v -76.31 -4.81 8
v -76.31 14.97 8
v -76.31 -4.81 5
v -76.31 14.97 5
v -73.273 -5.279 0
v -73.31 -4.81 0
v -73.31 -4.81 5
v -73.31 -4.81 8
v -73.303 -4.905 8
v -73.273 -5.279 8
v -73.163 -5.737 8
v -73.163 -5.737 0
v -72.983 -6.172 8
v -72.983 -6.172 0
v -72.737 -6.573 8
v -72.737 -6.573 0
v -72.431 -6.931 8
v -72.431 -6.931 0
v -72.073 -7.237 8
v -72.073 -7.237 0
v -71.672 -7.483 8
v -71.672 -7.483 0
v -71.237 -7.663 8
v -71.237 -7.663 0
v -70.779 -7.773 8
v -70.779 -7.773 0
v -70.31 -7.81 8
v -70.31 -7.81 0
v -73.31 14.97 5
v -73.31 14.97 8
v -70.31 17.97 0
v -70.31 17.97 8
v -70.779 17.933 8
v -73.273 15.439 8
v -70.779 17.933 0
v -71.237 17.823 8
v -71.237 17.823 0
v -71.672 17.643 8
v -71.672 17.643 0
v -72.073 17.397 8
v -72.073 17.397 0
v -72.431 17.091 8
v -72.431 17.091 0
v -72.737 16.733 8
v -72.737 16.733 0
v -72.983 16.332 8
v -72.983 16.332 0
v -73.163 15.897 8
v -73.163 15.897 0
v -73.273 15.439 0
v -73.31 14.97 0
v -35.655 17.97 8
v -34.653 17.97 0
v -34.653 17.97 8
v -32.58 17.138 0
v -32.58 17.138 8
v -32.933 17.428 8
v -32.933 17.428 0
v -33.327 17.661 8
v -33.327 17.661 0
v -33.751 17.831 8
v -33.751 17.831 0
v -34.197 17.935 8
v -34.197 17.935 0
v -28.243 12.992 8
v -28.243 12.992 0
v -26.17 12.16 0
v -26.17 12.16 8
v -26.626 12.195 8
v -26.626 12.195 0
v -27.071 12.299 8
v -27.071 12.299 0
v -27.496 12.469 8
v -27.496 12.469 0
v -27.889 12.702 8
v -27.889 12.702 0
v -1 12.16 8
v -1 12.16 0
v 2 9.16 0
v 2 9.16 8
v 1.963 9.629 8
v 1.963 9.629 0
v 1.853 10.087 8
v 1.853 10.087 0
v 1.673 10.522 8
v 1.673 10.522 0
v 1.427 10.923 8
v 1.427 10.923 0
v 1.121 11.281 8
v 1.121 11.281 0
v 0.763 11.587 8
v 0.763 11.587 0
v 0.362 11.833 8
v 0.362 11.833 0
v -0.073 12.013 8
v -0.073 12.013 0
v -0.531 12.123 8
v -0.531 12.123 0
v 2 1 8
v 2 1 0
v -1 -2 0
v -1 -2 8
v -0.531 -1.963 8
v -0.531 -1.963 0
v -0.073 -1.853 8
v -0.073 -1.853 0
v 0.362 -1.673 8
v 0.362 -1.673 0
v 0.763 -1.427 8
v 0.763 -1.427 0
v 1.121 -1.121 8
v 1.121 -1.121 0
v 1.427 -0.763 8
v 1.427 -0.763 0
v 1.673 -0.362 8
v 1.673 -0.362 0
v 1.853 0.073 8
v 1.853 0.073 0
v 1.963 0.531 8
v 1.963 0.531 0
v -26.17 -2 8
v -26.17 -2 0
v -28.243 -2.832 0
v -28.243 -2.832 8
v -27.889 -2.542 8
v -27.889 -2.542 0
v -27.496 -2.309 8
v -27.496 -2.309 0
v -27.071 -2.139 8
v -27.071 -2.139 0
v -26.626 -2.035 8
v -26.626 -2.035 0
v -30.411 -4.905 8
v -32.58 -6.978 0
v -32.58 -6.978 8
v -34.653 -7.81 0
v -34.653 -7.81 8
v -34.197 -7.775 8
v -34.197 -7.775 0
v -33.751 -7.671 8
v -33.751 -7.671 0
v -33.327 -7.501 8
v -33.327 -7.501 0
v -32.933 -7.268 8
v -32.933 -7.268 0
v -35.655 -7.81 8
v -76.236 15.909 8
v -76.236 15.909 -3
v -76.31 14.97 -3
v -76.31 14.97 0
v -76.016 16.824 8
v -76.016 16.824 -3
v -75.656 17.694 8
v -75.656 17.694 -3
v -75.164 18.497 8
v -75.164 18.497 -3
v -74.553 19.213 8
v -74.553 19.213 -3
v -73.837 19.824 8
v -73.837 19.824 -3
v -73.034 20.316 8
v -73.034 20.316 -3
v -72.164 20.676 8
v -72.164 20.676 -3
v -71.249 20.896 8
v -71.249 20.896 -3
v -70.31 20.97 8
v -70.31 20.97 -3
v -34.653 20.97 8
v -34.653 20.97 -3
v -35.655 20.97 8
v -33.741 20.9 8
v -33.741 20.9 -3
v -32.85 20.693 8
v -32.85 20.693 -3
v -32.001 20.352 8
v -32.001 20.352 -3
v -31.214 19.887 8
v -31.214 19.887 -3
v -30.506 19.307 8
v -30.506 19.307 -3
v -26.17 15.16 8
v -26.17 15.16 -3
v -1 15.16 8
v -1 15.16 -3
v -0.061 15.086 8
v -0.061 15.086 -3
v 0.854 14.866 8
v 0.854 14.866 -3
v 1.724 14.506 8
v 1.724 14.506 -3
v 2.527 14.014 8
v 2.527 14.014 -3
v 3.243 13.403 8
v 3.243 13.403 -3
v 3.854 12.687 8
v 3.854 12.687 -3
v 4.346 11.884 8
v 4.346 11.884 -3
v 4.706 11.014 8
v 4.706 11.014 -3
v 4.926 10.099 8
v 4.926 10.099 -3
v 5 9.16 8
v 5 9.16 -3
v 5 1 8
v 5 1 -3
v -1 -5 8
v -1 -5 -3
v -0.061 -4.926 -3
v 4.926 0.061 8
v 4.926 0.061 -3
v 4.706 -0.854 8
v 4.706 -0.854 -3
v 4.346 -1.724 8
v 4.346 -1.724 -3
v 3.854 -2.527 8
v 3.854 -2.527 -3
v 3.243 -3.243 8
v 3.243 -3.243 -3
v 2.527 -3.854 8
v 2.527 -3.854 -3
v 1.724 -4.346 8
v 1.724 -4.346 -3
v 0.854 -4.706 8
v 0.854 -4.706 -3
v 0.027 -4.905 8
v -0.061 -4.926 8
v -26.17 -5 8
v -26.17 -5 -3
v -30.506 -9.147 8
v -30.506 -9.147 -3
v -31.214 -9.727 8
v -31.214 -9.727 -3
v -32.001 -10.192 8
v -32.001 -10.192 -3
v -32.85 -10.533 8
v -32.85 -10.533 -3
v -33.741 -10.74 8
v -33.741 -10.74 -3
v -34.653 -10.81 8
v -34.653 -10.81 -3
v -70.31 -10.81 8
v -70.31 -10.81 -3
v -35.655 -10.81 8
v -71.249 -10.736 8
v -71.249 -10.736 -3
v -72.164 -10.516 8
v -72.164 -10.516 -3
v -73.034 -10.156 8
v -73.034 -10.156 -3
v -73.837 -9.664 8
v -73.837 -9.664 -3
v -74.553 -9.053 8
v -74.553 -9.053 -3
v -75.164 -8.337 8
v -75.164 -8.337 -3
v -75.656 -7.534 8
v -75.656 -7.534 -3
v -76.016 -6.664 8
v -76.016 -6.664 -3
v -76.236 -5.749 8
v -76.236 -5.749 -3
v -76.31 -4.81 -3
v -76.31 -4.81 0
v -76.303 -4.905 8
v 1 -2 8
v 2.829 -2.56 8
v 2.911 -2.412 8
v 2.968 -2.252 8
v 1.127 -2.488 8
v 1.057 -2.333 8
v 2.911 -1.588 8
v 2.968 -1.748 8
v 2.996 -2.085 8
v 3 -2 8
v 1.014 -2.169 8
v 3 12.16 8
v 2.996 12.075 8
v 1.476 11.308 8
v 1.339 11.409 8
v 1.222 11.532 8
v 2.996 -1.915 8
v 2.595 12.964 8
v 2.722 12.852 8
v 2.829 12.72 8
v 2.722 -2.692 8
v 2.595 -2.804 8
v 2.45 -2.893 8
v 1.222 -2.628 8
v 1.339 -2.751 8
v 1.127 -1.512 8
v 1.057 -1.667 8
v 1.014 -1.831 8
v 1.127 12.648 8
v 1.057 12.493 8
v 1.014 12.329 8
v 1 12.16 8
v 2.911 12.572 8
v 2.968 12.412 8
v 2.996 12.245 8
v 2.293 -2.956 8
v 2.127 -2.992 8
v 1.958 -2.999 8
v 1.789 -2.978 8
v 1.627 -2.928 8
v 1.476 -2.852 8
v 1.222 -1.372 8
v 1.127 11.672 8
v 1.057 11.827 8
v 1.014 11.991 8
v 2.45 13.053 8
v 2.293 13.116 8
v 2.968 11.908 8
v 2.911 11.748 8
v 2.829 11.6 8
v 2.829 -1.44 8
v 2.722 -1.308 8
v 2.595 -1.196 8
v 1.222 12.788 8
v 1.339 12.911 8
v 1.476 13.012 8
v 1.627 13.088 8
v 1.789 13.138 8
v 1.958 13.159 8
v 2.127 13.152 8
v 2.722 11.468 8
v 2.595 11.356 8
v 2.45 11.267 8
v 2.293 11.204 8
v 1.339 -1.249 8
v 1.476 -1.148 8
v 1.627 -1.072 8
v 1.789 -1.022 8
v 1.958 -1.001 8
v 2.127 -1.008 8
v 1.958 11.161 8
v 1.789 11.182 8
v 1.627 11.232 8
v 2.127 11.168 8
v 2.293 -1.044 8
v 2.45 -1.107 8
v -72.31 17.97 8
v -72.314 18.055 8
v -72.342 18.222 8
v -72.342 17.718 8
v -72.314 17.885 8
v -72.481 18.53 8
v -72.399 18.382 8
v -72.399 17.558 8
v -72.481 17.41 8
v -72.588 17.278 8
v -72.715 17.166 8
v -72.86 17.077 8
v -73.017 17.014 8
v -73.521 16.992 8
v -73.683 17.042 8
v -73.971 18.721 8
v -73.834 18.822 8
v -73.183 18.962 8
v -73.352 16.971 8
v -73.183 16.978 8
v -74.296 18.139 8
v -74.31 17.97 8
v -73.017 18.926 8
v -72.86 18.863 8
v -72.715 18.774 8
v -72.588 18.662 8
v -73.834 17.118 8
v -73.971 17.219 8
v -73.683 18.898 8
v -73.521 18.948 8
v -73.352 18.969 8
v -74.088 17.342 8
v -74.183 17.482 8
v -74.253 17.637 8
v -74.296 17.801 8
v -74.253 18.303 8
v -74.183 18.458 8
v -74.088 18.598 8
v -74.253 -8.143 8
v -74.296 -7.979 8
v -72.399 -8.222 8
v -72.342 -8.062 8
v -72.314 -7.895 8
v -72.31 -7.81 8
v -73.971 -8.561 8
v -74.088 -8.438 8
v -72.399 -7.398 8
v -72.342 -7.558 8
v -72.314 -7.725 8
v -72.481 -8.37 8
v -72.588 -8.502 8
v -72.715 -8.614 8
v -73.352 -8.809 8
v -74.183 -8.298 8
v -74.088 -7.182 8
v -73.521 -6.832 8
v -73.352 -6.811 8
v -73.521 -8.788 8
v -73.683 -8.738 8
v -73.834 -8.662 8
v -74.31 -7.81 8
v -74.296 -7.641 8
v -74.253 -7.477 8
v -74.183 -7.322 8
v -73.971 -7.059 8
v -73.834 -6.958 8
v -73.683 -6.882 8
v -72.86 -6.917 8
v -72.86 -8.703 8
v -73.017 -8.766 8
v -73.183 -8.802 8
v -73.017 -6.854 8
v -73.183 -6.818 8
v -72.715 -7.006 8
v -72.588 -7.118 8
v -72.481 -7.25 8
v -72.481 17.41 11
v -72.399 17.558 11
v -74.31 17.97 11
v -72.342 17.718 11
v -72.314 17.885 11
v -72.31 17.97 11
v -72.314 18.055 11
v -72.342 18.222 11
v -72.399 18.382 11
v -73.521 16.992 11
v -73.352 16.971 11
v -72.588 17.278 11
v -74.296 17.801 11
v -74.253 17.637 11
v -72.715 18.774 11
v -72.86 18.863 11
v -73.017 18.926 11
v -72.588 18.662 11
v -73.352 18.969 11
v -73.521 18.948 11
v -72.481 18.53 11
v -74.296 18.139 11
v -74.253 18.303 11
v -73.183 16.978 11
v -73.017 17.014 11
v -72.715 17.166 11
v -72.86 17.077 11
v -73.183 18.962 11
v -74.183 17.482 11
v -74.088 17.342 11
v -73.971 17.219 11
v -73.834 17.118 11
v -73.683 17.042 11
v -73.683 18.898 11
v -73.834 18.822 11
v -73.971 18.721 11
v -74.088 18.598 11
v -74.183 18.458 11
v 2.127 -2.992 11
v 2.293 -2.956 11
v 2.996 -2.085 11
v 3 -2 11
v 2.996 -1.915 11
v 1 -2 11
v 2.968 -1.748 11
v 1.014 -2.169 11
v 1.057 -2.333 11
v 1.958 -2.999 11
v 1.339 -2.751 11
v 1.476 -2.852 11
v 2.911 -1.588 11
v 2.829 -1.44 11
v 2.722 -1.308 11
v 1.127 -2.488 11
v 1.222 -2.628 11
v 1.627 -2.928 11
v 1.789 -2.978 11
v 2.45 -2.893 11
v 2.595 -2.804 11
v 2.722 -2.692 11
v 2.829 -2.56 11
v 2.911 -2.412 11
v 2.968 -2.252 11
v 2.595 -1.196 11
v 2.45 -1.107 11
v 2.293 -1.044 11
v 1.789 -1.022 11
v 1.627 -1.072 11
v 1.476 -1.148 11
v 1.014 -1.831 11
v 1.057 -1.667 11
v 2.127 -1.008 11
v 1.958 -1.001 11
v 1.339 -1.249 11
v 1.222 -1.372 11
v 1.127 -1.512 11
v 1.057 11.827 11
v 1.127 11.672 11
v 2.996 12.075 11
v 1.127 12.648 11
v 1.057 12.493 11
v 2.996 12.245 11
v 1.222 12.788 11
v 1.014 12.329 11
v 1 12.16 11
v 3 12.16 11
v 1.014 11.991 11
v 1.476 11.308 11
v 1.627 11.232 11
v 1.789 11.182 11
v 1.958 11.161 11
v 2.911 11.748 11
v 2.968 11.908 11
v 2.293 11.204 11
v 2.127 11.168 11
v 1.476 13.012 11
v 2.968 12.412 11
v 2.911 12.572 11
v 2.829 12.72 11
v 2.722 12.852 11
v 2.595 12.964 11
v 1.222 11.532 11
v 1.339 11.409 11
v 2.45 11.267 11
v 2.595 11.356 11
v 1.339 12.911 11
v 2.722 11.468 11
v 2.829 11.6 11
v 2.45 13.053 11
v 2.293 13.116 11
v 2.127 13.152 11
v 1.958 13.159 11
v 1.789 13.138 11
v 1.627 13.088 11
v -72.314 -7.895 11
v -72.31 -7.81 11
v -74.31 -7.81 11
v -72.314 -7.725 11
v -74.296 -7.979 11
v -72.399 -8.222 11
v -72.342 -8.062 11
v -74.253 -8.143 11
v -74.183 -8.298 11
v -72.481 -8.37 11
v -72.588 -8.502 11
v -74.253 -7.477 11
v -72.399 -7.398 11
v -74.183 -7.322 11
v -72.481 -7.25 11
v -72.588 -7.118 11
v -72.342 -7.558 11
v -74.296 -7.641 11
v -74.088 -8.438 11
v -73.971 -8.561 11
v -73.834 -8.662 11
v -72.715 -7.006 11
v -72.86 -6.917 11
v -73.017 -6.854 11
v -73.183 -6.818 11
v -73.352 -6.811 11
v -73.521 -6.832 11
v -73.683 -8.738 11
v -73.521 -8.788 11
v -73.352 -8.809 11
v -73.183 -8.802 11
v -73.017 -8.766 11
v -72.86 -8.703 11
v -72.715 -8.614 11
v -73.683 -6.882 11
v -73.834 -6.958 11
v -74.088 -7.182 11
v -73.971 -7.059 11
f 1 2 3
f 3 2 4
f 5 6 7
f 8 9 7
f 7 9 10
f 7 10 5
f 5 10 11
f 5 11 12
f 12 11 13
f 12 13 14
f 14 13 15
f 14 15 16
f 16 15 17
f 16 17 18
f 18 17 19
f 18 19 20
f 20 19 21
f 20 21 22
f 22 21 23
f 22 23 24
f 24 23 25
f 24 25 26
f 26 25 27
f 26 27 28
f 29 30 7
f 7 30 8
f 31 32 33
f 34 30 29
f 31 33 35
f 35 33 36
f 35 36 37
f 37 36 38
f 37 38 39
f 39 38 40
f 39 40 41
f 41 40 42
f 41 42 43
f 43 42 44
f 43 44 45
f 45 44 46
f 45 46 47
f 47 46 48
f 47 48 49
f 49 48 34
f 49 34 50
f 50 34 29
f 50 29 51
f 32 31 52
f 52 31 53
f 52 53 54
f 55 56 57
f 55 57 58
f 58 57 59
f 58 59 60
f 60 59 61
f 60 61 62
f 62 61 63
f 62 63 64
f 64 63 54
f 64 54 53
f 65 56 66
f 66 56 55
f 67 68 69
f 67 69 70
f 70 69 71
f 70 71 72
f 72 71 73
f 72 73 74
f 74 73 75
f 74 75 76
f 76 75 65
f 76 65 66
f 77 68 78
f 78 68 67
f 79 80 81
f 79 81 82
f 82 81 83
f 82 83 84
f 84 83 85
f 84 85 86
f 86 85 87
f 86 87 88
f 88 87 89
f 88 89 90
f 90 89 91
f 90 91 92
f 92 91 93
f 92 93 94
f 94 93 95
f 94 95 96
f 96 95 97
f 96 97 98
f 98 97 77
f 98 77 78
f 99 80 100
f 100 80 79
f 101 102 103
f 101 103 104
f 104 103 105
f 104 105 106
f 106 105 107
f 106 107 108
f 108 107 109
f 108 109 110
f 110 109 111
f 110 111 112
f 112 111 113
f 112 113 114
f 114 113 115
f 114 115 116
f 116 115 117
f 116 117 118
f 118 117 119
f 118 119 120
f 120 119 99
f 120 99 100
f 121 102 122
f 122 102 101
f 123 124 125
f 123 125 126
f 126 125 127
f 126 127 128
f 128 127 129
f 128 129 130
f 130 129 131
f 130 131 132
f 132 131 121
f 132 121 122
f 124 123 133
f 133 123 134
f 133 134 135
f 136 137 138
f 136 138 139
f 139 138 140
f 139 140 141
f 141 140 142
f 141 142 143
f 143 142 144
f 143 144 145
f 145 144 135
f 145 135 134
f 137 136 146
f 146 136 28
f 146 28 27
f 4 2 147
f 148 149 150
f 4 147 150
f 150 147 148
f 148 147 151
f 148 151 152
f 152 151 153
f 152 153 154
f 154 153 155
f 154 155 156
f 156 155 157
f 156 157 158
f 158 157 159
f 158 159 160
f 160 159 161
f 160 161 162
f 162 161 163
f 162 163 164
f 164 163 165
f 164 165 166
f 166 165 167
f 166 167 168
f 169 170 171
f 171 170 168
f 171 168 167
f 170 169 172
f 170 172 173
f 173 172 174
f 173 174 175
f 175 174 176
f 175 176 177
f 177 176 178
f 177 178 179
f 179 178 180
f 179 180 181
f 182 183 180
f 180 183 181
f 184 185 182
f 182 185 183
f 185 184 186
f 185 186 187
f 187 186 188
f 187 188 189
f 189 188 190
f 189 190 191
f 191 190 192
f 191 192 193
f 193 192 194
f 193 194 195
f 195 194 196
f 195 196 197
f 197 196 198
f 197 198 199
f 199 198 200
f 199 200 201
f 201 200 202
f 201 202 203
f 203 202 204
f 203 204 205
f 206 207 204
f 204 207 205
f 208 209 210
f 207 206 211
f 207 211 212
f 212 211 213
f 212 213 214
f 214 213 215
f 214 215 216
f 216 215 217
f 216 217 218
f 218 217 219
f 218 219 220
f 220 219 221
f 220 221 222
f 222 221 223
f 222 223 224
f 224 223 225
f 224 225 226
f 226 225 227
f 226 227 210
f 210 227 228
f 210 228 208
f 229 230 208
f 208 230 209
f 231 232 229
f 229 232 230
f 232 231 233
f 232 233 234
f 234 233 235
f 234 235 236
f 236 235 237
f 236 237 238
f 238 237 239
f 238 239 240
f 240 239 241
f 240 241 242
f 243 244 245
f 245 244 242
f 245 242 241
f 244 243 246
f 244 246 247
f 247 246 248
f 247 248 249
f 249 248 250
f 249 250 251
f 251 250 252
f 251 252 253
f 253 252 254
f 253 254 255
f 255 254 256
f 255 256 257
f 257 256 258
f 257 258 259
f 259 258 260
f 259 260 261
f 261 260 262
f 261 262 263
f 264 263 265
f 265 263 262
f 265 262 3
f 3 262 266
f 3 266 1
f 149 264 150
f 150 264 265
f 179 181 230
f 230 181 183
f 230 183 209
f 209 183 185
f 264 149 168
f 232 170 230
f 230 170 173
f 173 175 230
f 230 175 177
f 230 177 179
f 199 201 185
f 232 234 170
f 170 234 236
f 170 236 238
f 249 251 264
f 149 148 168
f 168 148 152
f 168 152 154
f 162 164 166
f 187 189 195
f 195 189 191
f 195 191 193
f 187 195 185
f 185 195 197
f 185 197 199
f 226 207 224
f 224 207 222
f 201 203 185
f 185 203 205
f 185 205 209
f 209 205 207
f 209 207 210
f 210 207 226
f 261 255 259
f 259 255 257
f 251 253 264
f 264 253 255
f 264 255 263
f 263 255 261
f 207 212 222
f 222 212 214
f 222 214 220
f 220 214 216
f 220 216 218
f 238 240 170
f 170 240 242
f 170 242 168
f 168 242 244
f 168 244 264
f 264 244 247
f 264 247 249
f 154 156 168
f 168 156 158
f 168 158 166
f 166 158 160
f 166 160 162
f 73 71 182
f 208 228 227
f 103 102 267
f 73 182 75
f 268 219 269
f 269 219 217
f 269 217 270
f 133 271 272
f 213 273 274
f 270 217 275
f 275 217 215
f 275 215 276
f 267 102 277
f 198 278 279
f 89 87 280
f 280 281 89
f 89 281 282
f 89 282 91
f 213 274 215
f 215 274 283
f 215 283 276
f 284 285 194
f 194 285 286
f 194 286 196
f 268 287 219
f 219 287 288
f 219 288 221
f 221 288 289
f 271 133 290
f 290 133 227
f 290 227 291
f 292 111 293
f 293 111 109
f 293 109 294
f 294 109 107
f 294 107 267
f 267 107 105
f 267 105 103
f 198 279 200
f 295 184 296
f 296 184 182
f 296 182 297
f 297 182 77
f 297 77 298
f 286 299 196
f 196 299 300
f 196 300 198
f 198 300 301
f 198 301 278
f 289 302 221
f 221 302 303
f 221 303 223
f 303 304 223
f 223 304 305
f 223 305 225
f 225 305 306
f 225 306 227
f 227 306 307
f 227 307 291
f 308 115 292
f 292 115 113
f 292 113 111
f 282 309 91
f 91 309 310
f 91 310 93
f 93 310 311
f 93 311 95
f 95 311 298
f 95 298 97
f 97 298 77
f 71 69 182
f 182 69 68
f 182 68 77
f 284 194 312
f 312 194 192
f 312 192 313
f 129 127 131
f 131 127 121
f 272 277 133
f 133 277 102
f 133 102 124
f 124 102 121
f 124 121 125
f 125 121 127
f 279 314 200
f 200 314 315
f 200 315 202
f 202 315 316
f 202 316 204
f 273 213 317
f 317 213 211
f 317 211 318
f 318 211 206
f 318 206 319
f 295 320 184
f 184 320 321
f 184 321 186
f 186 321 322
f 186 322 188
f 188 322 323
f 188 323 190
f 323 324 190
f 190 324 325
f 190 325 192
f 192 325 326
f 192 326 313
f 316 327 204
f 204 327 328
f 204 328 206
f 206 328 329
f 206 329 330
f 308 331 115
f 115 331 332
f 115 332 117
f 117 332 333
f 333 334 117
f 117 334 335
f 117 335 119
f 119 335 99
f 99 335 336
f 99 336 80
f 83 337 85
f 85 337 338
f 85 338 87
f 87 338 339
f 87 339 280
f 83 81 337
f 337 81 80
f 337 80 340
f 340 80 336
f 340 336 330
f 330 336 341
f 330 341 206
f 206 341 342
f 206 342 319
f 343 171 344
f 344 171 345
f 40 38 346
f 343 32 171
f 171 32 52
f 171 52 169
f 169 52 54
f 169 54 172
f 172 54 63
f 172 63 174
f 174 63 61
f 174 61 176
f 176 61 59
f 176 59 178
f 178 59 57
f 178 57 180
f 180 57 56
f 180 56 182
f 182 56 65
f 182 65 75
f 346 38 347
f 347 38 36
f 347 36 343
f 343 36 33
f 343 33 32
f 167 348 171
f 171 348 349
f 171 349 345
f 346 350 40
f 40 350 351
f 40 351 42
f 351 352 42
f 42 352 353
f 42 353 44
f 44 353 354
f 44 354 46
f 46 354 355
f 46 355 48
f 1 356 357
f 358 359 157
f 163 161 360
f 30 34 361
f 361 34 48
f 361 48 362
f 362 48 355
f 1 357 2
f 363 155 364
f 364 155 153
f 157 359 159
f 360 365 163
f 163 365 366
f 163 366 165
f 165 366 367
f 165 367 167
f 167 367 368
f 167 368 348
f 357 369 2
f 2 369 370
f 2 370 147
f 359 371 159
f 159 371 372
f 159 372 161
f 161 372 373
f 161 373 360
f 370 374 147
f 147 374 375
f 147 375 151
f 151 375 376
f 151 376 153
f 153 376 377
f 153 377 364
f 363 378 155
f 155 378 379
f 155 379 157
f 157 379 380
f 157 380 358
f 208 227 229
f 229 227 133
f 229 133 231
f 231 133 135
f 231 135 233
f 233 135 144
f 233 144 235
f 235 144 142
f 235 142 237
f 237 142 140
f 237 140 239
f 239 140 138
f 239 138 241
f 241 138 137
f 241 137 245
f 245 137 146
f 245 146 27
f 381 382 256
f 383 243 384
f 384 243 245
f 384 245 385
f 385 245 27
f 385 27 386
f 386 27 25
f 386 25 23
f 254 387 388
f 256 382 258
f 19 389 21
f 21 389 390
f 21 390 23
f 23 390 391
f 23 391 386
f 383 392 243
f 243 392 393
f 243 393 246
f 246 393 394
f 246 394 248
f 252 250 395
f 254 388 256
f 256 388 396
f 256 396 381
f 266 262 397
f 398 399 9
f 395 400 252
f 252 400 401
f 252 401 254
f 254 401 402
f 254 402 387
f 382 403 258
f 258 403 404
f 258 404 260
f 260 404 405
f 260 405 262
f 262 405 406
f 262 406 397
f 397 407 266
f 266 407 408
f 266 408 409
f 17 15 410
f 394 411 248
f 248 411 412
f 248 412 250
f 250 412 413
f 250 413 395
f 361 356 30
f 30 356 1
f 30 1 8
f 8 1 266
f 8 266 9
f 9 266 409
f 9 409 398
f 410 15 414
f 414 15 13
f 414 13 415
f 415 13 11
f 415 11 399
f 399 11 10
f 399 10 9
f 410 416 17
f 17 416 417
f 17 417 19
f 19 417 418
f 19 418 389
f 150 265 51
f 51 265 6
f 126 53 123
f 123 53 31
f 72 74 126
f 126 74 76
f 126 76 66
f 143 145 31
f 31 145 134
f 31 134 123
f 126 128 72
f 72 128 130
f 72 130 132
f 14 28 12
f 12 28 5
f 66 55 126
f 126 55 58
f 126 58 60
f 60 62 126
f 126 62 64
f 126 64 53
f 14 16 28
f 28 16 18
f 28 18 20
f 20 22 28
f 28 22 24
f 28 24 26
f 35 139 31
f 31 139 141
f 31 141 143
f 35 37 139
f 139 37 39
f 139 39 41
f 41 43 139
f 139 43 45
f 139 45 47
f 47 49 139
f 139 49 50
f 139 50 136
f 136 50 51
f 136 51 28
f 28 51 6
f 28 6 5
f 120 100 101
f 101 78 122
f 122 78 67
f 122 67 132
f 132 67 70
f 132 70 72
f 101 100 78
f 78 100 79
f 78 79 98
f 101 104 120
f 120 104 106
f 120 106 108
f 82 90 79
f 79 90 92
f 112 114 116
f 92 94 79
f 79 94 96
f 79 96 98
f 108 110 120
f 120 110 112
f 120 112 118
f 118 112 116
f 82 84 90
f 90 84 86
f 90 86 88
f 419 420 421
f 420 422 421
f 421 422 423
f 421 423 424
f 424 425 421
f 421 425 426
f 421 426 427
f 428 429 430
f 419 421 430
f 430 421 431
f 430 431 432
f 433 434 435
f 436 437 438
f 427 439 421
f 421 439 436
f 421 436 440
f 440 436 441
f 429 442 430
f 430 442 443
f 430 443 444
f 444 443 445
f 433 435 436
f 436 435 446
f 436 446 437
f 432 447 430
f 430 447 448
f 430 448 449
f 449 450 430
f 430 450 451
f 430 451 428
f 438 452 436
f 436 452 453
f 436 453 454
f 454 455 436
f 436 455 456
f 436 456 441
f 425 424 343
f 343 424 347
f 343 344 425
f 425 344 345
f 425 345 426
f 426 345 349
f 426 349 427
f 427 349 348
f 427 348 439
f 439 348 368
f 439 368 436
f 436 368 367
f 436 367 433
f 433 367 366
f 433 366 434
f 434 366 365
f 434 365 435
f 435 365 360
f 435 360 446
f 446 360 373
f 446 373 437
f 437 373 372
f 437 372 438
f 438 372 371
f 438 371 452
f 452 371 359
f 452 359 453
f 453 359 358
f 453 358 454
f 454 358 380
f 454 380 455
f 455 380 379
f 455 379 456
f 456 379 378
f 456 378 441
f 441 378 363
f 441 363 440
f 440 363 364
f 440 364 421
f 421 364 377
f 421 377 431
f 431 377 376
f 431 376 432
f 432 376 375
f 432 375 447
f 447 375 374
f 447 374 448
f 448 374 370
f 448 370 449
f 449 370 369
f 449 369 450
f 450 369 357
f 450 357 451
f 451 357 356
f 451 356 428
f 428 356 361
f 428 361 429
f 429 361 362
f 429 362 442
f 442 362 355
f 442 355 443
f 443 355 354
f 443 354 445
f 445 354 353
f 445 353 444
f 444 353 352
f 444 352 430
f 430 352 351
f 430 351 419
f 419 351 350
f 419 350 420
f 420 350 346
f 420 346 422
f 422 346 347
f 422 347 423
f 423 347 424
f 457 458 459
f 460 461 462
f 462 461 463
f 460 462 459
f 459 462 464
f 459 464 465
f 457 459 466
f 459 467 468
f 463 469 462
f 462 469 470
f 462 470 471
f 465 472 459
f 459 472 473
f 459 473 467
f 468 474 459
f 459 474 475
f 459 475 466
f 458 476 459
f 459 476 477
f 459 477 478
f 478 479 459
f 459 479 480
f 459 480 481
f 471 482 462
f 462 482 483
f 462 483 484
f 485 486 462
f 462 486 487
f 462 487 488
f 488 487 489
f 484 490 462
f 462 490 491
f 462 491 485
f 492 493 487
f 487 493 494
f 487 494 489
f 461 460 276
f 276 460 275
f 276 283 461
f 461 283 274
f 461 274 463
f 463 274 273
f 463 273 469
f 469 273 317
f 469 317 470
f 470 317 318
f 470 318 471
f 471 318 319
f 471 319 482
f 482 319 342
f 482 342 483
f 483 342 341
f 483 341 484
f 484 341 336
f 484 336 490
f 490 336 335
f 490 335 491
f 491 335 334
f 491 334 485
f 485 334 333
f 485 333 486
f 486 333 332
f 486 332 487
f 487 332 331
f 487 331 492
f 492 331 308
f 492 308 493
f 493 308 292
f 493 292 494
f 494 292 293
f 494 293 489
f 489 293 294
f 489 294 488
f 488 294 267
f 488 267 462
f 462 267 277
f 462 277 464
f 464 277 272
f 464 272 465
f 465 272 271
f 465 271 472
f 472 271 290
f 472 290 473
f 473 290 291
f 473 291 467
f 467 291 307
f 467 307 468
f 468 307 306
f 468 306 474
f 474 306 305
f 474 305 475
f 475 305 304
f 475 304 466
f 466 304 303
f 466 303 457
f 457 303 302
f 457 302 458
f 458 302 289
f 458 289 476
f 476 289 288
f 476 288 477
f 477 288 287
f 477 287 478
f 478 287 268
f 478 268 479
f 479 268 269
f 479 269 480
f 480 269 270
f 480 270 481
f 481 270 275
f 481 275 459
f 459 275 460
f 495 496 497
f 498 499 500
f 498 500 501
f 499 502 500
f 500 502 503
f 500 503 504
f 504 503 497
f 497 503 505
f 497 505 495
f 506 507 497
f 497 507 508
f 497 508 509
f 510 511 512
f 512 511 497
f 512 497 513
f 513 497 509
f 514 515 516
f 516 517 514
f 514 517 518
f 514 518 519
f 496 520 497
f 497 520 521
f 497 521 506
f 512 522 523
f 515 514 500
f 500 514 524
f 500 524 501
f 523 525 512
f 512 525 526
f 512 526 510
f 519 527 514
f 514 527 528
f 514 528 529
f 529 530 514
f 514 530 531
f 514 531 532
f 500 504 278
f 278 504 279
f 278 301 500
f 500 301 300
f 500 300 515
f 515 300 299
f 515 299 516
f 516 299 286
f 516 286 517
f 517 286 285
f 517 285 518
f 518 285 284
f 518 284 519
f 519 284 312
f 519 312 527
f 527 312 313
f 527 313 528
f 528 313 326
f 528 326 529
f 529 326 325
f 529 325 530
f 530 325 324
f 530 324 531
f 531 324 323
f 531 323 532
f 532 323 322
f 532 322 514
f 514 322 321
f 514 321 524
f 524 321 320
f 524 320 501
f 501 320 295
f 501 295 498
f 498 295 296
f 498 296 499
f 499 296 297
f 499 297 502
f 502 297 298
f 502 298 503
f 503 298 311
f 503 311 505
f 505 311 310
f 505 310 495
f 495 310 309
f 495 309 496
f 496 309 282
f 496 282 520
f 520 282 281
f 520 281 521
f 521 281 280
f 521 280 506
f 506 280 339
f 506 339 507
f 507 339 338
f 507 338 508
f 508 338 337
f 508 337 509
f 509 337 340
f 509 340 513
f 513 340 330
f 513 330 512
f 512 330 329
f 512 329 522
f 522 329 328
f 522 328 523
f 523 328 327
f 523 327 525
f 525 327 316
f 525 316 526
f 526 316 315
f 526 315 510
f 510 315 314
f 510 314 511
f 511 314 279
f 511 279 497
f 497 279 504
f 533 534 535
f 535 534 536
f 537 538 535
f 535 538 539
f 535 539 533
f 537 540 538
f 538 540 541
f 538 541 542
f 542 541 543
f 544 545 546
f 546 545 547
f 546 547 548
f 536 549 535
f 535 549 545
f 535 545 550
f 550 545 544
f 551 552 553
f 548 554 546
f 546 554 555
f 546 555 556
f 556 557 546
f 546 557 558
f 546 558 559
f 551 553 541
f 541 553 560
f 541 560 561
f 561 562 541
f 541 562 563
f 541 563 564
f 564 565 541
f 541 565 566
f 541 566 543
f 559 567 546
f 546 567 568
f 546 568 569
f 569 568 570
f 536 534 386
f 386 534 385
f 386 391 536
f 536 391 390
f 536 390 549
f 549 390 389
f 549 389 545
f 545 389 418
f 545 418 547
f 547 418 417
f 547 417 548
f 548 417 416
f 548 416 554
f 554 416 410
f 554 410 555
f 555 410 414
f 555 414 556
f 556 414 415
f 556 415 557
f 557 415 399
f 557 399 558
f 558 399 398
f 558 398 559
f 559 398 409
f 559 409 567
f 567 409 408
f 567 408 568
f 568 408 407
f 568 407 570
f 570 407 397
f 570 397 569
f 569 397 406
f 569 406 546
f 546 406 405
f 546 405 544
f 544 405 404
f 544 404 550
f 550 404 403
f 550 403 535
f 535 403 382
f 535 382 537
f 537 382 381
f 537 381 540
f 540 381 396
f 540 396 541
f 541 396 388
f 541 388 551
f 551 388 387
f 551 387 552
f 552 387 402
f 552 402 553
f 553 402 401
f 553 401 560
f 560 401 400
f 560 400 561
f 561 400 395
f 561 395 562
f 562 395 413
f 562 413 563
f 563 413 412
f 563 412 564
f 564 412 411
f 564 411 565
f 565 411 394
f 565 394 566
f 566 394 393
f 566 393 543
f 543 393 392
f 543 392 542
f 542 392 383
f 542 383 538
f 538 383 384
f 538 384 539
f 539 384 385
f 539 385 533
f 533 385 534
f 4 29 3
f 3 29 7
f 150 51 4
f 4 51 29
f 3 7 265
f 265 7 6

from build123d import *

# Parameters (mm, degrees)
SKETCH3_R                = 1
BOSS_EXTRUDE2_DEPTH      = 8
BOSS_EXTRUDE2_DEPTH_BACK = 3
BOSS_EXTRUDE3_DEPTH      = 3
SKETCH7_R                = 1
BOSS_EXTRUDE4_DEPTH      = 3
BOSS_EXTRUDE4_DEPTH_BACK = 11
SKETCH9_W                = 5
SKETCH9_H                = 19.78
CUT_EXTRUDE2_DEPTH       = 10


with BuildPart() as part:
    # Sketch3 → Boss-Extrude2 (new, two sides)
    with BuildSketch(Plane.XY) as boss_extrude2_sk:
        with BuildLine():
            Line((-70.31, 20.97), (-34.65285742, 20.97))
            ThreePointArc((-34.65285742, 20.97), (-32.418966384, 20.53863815), (-30.506280473, 19.306576947))
            Line((-30.506280473, 19.306576947), (-26.169703525, 15.16))
            Line((-26.169703525, 15.16), (-1, 15.16))
            ThreePointArc((-1, 15.16), (3.242640687, 13.402640687), (5, 9.16))
            Line((5, 9.16), (5, 1))
            ThreePointArc((5, 1), (3.242640687, -3.242640687), (-1, -5))
            Line((-1, -5), (-26.169703525, -5))
            Line((-26.169703525, -5), (-30.506280473, -9.146576947))
            ThreePointArc((-30.506280473, -9.146576947), (-32.418966384, -10.37863815), (-34.65285742, -10.81))
            Line((-34.65285742, -10.81), (-70.31, -10.81))
            ThreePointArc((-70.31, -10.81), (-74.552640687, -9.052640687), (-76.31, -4.81))
            Line((-76.31, -4.81), (-76.31, 14.97))
            ThreePointArc((-76.31, 14.97), (-74.552640687, 19.212640687), (-70.31, 20.97))
        make_face()
        with Locations((-73.31, 17.97)):
            Circle(SKETCH3_R, mode=Mode.SUBTRACT)
        with Locations((-73.31, -7.81)):
            Circle(SKETCH3_R, mode=Mode.SUBTRACT)
        with Locations((2, -2)):
            Circle(SKETCH3_R, mode=Mode.SUBTRACT)
        with Locations((2, 12.16)):
            Circle(SKETCH3_R, mode=Mode.SUBTRACT)
        with BuildLine():
            Line((-70.31, 17.97), (-34.65285742, 17.97))
            ThreePointArc((-34.65285742, 17.97), (-33.535911902, 17.754319075), (-32.579568946, 17.138288474))
            Line((-32.579568946, 17.138288474), (-28.242991999, 12.991711526))
            ThreePointArc((-28.242991999, 12.991711526), (-27.286649043, 12.375680925), (-26.169703525, 12.16))
            Line((-26.169703525, 12.16), (-1, 12.16))
            ThreePointArc((-1, 12.16), (1.121320344, 11.281320344), (2, 9.16))
            Line((2, 9.16), (2, 1))
            ThreePointArc((2, 1), (1.121320344, -1.121320344), (-1, -2))
            Line((-1, -2), (-26.169703525, -2))
            ThreePointArc((-26.169703525, -2), (-27.286649043, -2.215680925), (-28.242991999, -2.831711526))
            Line((-28.242991999, -2.831711526), (-32.579568946, -6.978288474))
            ThreePointArc((-32.579568946, -6.978288474), (-33.535911902, -7.594319075), (-34.65285742, -7.81))
            Line((-34.65285742, -7.81), (-70.31, -7.81))
            ThreePointArc((-70.31, -7.81), (-72.431320344, -6.931320344), (-73.31, -4.81))
            Line((-73.31, -4.81), (-73.31, 14.97))
            ThreePointArc((-73.31, 14.97), (-72.431320344, 17.091320344), (-70.31, 17.97))
        make_face(mode=Mode.SUBTRACT)
    extrude(amount=BOSS_EXTRUDE2_DEPTH)
    extrude(boss_extrude2_sk.sketch, amount=-BOSS_EXTRUDE2_DEPTH_BACK)

    # Sketch5 → Boss-Extrude3 (add)
    with BuildSketch(Plane(origin=(0, 0, -3), x_dir=(-1, 0, 0), z_dir=(0, 0, -1))):
        with BuildLine():
            Line((73.31, 14.97), (73.31, -4.81))
            ThreePointArc((73.31, -4.81), (72.431320344, -6.931320344), (70.31, -7.81))
            Line((70.31, -7.81), (34.65285742, -7.81))
            ThreePointArc((34.65285742, -7.81), (33.535911902, -7.594319075), (32.579568946, -6.978288474))
            Line((32.579568946, -6.978288474), (28.242991999, -2.831711526))
            ThreePointArc((28.242991999, -2.831711526), (27.286649043, -2.215680925), (26.169703525, -2))
            Line((26.169703525, -2), (1, -2))
            ThreePointArc((1, -2), (-1.121320344, -1.121320344), (-2, 1))
            Line((-2, 1), (-2, 9.16))
            ThreePointArc((-2, 9.16), (-1.121320344, 11.281320344), (1, 12.16))
            Line((1, 12.16), (26.169703525, 12.16))
            ThreePointArc((26.169703525, 12.16), (27.286649043, 12.375680925), (28.242991999, 12.991711526))
            Line((28.242991999, 12.991711526), (32.579568946, 17.138288474))
            ThreePointArc((32.579568946, 17.138288474), (33.535911902, 17.754319075), (34.65285742, 17.97))
            Line((34.65285742, 17.97), (70.31, 17.97))
            ThreePointArc((70.31, 17.97), (72.431320344, 17.091320344), (73.31, 14.97))
        make_face()
    extrude(amount=-BOSS_EXTRUDE3_DEPTH)

    # Sketch7 → Boss-Extrude4 (add, two sides)
    with BuildSketch(Plane.XY.offset(8)) as boss_extrude4_sk:
        with Locations((-73.31, 17.97)):
            Circle(SKETCH7_R)
        with Locations((2, -2)):
            Circle(SKETCH7_R)
        with Locations((2, 12.16)):
            Circle(SKETCH7_R)
        with Locations((-73.31, -7.81)):
            Circle(SKETCH7_R)
    extrude(amount=BOSS_EXTRUDE4_DEPTH)
    extrude(boss_extrude4_sk.sketch, amount=-BOSS_EXTRUDE4_DEPTH_BACK)

    # Sketch9 → Cut-Extrude2 (cut)
    with BuildSketch(Plane.ZY.offset(76.31)):
        with Locations((2.5, 5.08)):
            Rectangle(SKETCH9_W, SKETCH9_H)
    extrude(amount=-CUT_EXTRUDE2_DEPTH, mode=Mode.SUBTRACT)


solid = part.part
